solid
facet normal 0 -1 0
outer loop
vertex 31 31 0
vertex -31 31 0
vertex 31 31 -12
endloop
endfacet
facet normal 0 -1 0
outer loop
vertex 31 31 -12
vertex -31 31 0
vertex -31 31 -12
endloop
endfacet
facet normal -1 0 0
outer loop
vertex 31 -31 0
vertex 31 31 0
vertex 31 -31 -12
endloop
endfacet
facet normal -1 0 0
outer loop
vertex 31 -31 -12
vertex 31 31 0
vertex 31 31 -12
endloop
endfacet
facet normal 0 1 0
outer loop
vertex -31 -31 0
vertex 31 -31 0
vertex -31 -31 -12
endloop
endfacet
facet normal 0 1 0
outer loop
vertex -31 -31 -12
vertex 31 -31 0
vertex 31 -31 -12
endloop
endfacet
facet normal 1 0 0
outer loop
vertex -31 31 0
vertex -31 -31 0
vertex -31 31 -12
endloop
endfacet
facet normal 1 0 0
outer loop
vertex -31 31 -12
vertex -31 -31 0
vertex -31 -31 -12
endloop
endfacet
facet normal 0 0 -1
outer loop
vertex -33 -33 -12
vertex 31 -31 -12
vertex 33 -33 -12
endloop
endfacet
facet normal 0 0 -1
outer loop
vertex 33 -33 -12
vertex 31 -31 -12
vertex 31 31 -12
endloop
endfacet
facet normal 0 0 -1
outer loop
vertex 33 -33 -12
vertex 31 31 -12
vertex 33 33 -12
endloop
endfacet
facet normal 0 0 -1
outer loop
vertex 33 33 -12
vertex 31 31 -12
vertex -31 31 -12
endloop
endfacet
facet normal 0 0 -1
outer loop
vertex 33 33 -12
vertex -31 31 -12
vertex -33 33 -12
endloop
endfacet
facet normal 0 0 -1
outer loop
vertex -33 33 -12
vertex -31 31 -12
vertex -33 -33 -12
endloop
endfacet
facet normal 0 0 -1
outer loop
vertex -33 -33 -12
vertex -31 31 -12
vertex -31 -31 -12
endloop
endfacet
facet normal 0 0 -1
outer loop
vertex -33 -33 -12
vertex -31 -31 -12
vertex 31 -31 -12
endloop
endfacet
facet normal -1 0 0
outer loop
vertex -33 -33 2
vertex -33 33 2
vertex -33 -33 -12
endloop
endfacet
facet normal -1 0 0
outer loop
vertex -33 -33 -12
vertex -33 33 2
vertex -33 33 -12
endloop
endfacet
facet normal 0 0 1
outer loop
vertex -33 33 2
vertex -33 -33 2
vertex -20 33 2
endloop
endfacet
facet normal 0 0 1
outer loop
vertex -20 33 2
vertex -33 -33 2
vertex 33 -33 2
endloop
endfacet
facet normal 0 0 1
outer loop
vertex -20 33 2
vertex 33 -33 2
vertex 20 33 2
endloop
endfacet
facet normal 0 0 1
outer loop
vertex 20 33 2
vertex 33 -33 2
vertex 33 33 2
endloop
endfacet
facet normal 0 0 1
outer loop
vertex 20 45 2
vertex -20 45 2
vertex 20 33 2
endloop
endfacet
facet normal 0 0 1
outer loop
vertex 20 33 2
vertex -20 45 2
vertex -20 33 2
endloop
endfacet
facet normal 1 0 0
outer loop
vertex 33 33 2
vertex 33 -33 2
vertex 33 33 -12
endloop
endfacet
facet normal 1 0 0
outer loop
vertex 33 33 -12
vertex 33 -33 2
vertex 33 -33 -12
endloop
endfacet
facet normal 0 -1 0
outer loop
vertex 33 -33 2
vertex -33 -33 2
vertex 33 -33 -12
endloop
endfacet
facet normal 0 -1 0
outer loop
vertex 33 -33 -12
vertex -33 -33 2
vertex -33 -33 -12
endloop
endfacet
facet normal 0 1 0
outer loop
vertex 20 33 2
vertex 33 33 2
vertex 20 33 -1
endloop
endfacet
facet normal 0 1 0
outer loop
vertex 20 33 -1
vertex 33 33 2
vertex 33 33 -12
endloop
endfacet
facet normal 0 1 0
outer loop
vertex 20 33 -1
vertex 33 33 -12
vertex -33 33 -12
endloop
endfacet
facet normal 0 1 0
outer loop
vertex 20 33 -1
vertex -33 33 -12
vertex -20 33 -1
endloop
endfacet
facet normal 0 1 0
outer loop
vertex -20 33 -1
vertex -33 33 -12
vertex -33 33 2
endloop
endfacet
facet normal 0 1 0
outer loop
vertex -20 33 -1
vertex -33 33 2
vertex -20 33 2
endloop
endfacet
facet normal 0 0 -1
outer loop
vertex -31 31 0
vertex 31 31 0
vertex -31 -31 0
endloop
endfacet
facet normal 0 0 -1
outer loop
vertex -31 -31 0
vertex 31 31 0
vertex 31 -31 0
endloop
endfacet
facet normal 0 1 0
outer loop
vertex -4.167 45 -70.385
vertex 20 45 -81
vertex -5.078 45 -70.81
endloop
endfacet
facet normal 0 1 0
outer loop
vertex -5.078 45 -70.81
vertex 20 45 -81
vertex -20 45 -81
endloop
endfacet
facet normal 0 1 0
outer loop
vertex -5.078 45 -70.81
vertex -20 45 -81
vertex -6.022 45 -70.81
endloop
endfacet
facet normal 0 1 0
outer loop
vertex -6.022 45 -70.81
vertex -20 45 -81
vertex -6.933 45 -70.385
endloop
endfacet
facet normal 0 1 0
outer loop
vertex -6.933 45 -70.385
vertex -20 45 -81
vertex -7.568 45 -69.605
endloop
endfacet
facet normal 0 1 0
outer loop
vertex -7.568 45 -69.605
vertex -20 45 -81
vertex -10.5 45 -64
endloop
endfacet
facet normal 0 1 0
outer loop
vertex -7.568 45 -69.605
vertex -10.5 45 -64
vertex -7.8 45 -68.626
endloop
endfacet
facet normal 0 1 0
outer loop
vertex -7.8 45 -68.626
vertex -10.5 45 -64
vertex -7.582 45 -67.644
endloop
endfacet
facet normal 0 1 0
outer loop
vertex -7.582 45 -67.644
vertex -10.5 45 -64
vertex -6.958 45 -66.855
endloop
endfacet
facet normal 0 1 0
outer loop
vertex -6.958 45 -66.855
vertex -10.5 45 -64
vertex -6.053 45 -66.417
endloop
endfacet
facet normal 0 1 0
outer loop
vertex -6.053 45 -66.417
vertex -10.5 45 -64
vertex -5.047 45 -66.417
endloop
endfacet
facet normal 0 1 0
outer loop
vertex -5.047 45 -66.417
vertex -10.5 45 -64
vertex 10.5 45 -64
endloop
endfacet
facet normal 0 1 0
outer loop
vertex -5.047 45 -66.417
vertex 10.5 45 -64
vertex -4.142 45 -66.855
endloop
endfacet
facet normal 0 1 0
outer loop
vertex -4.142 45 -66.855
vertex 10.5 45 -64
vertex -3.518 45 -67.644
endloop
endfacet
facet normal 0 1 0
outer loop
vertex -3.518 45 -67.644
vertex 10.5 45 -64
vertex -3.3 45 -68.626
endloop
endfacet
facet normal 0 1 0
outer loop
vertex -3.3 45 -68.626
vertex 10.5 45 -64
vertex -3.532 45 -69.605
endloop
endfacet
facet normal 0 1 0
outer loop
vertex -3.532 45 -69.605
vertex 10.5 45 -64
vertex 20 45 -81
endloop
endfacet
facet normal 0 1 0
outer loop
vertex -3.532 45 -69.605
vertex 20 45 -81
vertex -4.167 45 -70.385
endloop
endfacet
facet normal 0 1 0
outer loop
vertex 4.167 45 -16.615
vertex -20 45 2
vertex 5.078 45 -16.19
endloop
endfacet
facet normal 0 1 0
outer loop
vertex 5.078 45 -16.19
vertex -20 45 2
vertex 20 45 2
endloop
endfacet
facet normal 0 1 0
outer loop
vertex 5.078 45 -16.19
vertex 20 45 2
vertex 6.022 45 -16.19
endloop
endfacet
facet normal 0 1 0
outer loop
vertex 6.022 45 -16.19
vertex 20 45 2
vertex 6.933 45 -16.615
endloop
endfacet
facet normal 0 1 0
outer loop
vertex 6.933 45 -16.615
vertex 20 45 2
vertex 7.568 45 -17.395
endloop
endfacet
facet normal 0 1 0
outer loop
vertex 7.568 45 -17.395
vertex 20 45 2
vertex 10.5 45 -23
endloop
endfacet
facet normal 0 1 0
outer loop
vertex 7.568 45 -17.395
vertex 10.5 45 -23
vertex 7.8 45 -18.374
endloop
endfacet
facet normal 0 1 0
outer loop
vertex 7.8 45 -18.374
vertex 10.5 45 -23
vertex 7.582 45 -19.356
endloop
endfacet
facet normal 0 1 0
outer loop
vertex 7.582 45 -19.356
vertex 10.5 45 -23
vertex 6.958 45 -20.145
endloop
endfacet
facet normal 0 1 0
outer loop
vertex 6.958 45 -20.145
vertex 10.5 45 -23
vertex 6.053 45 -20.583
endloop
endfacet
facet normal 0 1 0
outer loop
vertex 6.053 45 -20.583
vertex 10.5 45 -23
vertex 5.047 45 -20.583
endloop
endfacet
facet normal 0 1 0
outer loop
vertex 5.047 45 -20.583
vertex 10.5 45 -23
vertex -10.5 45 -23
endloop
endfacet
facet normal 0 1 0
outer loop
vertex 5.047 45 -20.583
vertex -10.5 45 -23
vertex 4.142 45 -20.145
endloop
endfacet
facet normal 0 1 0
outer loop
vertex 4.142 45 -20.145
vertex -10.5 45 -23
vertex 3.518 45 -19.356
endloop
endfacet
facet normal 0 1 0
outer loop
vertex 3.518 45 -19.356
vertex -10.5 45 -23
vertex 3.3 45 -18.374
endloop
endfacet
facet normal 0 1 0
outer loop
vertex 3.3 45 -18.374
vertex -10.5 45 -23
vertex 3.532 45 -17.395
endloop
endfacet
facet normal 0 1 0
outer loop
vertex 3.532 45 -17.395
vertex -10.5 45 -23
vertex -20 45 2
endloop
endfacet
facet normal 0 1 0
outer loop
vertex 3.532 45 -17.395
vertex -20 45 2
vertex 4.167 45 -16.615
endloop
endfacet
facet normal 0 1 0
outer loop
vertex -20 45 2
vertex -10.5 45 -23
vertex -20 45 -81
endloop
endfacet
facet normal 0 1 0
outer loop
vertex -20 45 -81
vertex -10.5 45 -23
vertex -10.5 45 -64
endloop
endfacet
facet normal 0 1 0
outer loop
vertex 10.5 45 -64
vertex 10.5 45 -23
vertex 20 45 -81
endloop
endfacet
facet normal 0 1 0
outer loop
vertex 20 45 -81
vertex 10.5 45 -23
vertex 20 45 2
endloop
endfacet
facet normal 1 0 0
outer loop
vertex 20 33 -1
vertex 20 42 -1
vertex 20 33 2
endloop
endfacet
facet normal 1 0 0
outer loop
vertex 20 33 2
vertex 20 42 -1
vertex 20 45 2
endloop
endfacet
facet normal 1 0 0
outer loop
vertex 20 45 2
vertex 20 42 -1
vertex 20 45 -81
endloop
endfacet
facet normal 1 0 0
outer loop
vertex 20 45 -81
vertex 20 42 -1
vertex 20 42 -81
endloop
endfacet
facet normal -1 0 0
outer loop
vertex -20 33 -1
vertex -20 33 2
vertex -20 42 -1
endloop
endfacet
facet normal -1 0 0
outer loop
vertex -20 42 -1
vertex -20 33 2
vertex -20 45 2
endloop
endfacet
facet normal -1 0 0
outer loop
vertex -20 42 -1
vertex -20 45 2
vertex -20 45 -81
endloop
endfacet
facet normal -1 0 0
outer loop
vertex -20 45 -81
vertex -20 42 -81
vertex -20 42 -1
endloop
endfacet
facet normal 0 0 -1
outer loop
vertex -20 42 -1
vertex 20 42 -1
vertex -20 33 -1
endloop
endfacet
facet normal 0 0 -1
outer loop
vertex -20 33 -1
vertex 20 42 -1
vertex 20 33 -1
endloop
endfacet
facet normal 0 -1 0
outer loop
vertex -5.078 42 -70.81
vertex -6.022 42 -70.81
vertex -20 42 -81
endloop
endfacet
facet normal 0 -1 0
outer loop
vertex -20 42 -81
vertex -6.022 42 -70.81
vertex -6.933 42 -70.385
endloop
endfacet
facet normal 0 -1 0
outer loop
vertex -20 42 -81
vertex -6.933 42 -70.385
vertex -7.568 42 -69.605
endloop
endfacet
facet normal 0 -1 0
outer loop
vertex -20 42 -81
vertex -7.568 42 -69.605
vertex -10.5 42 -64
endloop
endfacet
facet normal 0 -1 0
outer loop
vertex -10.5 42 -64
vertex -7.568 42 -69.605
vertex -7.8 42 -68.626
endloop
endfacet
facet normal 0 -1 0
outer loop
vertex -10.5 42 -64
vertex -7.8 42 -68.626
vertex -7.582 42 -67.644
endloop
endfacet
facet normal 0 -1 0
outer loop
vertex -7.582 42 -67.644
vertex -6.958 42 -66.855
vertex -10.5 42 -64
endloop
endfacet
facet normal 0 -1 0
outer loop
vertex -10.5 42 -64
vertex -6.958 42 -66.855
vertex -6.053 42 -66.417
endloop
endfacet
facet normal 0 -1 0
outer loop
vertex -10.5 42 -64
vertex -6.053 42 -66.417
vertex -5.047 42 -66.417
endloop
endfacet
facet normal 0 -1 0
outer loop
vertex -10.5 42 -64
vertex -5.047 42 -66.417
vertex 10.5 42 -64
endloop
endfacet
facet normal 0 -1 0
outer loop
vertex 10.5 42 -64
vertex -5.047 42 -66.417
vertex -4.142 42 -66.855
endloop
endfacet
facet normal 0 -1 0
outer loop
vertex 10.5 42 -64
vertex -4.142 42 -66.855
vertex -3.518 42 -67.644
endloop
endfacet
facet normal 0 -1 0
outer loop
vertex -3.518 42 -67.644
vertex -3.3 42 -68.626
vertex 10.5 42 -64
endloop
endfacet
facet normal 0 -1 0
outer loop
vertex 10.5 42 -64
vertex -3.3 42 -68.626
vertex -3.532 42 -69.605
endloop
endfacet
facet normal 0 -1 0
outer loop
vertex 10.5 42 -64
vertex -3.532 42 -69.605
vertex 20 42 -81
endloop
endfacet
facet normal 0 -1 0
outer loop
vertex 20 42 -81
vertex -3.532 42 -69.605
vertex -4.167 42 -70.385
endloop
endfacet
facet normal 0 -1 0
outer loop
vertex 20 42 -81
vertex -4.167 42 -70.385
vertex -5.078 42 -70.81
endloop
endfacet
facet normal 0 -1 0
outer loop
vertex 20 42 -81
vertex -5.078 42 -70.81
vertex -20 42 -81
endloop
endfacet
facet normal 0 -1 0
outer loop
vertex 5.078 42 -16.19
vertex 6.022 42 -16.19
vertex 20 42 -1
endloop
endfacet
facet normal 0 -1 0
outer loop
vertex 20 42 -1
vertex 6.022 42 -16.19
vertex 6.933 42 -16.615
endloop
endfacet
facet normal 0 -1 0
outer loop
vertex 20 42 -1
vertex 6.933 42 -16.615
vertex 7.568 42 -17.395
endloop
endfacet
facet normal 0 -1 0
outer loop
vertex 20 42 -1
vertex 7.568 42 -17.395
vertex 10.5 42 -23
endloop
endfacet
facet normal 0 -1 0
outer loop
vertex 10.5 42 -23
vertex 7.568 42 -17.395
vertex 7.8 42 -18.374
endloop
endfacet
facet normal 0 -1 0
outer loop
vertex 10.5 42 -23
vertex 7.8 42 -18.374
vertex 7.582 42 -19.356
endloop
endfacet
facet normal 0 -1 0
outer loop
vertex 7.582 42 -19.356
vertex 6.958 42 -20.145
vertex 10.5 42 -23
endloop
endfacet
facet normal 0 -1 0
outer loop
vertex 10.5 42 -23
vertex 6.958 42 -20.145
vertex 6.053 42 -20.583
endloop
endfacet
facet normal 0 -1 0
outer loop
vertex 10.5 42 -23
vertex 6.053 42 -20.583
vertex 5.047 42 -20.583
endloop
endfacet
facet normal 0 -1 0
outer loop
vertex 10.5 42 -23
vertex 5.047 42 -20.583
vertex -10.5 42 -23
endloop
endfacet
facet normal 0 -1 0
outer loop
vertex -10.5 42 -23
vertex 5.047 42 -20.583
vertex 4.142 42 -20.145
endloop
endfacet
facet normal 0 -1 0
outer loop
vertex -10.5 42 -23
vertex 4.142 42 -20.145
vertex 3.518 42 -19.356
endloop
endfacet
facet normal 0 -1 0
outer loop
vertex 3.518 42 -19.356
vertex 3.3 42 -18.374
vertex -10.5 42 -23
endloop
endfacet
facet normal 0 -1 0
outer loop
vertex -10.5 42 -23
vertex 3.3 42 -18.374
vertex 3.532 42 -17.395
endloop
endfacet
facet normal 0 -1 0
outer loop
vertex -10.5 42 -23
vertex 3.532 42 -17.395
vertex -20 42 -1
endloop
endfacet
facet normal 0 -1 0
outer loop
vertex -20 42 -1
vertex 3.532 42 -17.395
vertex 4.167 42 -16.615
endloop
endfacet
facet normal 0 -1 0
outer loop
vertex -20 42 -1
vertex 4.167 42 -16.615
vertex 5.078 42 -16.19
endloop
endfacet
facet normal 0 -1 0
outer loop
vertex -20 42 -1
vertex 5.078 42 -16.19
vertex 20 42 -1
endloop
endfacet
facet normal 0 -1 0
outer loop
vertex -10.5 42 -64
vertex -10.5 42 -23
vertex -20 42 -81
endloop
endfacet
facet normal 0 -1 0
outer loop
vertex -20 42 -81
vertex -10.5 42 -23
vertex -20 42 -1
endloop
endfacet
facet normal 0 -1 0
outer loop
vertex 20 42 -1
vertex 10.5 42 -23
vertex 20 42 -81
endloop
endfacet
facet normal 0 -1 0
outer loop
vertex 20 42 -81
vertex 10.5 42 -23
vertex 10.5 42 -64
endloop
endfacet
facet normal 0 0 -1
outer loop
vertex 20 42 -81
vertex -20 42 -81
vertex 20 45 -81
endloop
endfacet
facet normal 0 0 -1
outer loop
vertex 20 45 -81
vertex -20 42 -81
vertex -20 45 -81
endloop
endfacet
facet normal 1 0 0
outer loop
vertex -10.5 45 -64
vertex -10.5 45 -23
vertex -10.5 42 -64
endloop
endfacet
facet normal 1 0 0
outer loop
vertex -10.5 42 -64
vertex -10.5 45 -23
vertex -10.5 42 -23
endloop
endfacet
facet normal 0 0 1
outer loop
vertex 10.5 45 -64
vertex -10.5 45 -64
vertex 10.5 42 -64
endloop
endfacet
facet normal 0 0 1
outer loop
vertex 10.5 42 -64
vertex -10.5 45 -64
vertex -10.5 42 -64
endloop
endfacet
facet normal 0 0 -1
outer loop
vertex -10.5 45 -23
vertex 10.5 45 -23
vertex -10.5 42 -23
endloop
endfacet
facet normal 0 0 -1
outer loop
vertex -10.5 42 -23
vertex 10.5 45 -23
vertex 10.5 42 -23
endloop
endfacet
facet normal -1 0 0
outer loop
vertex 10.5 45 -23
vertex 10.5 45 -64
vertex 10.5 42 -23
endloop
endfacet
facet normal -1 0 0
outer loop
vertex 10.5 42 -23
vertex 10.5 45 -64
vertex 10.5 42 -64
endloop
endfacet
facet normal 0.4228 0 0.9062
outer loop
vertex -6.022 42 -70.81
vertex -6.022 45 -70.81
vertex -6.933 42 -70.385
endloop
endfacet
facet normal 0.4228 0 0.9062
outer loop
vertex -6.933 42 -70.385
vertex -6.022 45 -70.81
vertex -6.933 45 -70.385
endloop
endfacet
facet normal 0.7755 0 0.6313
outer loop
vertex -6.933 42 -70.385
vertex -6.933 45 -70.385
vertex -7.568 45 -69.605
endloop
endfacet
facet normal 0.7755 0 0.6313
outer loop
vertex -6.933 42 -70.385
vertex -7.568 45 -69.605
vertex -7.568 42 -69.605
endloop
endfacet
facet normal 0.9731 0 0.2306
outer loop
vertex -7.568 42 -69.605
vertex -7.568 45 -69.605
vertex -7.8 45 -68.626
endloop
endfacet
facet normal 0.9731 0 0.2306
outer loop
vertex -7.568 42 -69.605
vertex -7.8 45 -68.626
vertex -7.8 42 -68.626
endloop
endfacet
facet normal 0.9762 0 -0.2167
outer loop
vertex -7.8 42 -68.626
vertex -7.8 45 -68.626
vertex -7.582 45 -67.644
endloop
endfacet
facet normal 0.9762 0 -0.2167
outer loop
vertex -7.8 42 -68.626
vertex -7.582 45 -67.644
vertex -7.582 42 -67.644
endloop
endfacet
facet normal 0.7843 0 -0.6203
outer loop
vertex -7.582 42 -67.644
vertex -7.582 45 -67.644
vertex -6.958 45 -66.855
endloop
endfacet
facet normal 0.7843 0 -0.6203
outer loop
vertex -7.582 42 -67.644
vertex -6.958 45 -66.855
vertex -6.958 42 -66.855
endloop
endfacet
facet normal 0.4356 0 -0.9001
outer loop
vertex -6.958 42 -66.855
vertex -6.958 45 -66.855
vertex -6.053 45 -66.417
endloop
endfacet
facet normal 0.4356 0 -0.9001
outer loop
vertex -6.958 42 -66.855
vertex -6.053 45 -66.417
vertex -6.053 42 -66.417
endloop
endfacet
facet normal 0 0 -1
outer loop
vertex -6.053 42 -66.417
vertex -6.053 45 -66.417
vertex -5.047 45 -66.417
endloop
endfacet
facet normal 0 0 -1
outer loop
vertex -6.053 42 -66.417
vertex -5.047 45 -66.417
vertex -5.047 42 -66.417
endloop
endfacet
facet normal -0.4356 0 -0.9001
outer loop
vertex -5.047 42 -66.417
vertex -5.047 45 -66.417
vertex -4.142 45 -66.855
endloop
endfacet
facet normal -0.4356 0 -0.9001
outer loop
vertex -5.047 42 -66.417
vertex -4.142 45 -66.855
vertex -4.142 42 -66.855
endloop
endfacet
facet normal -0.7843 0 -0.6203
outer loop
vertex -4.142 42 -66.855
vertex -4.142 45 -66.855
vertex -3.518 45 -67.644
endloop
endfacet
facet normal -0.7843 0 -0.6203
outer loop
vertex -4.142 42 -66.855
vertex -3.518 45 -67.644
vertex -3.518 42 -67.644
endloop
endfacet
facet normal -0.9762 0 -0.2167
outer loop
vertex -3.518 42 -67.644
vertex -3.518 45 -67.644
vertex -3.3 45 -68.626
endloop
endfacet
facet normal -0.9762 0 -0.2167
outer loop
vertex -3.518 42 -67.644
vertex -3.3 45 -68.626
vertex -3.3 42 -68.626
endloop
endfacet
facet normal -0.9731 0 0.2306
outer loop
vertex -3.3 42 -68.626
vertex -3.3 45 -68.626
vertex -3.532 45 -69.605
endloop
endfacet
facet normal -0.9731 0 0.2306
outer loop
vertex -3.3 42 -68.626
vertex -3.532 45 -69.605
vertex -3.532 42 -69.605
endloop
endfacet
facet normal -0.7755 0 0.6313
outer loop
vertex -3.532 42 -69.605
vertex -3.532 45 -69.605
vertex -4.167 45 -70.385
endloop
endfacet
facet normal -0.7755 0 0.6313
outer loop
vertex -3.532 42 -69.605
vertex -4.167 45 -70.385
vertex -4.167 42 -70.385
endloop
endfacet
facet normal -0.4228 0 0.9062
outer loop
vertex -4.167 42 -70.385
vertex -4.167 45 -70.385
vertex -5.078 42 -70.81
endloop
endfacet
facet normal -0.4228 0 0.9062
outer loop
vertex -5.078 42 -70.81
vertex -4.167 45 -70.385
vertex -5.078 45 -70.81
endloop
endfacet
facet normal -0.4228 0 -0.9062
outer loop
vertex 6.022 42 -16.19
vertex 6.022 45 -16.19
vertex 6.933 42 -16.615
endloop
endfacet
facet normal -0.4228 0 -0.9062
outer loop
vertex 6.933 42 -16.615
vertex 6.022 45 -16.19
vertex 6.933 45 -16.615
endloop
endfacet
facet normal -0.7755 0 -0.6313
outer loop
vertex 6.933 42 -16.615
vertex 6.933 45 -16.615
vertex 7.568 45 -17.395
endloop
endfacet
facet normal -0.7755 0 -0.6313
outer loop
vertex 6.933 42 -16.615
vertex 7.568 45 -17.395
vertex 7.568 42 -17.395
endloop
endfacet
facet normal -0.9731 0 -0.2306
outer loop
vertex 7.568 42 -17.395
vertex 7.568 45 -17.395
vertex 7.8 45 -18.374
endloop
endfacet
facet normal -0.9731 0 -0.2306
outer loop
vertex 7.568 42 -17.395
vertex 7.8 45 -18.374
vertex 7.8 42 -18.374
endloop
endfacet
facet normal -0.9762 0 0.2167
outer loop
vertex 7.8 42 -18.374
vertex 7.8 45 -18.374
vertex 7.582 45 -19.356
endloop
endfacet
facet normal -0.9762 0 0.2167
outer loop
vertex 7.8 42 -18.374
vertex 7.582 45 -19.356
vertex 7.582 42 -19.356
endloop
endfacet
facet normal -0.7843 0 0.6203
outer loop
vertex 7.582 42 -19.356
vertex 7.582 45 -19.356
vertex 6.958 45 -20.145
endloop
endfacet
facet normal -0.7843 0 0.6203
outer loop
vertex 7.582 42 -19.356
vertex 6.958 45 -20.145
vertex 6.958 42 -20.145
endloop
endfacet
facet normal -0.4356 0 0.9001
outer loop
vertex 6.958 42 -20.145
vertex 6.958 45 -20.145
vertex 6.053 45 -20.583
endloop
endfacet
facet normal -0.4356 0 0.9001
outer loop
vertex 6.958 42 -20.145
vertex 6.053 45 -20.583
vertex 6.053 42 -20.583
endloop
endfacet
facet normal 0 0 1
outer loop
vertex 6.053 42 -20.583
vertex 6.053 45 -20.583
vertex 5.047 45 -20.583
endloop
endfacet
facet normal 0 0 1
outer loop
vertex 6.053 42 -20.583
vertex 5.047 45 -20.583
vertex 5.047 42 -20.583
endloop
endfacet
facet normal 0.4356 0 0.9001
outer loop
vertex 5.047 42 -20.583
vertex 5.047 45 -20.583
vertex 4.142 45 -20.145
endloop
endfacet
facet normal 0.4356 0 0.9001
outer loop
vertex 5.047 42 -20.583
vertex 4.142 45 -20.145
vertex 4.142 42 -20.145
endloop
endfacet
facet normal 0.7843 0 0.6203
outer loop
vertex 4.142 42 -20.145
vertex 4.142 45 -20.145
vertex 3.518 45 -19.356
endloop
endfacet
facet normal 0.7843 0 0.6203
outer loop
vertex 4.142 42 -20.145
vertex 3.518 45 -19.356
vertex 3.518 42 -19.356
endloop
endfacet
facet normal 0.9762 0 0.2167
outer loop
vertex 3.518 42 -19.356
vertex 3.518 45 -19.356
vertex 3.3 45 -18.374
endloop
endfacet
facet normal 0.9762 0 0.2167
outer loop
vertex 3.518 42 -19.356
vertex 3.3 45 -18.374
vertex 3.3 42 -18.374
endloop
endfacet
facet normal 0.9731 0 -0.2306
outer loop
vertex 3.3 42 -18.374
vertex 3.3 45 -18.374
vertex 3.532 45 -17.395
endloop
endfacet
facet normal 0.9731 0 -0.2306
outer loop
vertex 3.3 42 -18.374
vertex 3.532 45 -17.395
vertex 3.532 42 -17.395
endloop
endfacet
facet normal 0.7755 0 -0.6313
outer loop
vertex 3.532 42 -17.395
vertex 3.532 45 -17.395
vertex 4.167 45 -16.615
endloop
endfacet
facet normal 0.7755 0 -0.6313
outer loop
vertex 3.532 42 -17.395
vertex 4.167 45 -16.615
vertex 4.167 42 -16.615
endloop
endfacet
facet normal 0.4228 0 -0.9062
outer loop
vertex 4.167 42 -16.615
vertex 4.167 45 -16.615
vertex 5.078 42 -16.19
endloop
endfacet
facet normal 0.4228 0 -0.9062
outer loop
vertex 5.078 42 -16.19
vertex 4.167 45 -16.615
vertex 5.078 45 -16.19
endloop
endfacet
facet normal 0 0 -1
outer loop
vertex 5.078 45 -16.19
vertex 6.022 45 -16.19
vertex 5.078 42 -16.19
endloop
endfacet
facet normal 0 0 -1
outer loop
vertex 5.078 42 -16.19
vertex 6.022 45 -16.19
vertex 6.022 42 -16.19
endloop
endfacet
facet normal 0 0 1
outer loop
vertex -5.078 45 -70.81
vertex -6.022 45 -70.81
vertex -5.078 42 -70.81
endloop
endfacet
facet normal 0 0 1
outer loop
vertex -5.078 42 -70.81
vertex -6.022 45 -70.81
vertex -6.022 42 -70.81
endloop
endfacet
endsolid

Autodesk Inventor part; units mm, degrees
ref_plane "YZ Plane" through (0, 0, 0) normal (1, 0, 0) x (0, 1, 0)
ref_plane "XZ Plane" through (0, 0, 0) normal (0, 1, 0) x (-1, 0, 0)
ref_plane "XY Plane" through (0, 0, 0) normal (0, 0, 1) x (1, 0, 0)
sketch "Sketch1" plane through (0, 0, 0) normal (0, 0, 1) x (1, 0, 0)
  line L0 (-31, -31) -> (31, -31)
  line L1 (31, -31) -> (31, 31)
  line L2 (31, 31) -> (-31, 31)
  line L3 (-31, 31) -> (-31, -31)
  line L4 (-31, -31) -> (31, 31) construction
  line L5 (31, -31) -> (-31, 31) construction
  line L6 (-33, 33) -> (33, 33)
  line L7 (33, 33) -> (33, -33)
  line L8 (33, -33) -> (-33, -33)
  line L9 (-33, -33) -> (-33, 33)
  point P0 (0, 0)
  dimension "d0" = 62
  dimension "d1" = 62
  dimension "d2" = 2
extrude "Extrusion1" add sketch "Sketch1" along normal blind 2 contours L3 L2 L1 L0 | L6 L7 L8 L9
extrude "Extrusion2" add sketch "Sketch1" against normal blind 12
sketch "Sketch2" plane through (-33, 33, 2) normal (0, 1, 0) x (1, 0, 0)
  line L0 (13, 3) -> (53, 3)
  line L1 (53, 3) -> (53, 0)
  line L2 (53, 0) -> (13, 0)
  line L3 (13, 0) -> (13, 3)
  line L4 (0, 14) -> (0, 0) projected
  line L5 (0, 14) -> (66, 14) projected
  point P0 (33, 2)
  dimension "d7" = 40
  dimension "d8" = 3
  dimension "d9" = 13
  dimension "d10" = 11
extrude "Extrusion3" add sketch "Sketch2" along normal blind 12
sketch "Sketch3" plane through (20, 33, -1) normal (0, 0, -1) x (-1, 0, 0)
  line L0 (40, 12) -> (0, 12) projected
  line L1 (40, 0) -> (40, 12) projected
  line L2 (0, 12) -> (40, 12)
  line L3 (40, 12) -> (40, 9)
  line L4 (40, 9) -> (0, 9)
  line L5 (0, 9) -> (0, 12)
  point P0 (20, -33)
  dimension "d13" = 3
extrude "Extrusion4" add sketch "Sketch3" along normal blind 80
sketch "Sketch4" plane through (-20, 42, -1) normal (0, -1, 0) x (1, 0, 0)
  line L0 (30.5, -63) -> (9.5, -63)
  line L1 (9.5, -63) -> (9.5, -22)
  line L2 (9.5, -22) -> (30.5, -22)
  line L3 (30.5, -22) -> (30.5, -63)
  line L4 (40, 3) -> (40, -80) projected
  line L5 (0, 3) -> (40, 3) projected
  point P0 (20, 1)
  dimension "d16" = 21
  dimension "d17" = 41
  dimension "d18" = 9.5
  dimension "d19" = 25
extrude "Extrusion5" cut sketch "Sketch4" against normal blind 80
sketch "Sketch5" plane through (-20, 42, -1) normal (0, -1, 0) x (1, 0, 0)
  line L0 (30.5, -63) -> (9.5, -63) projected
  line L1 (30.5, -63) -> (9.5, -63)
  line L2 (9.5, -63) -> (9.5, -69.81)
  line L3 (9.5, -69.81) -> (30.5, -69.81)
  line L4 (30.5, -69.81) -> (30.5, -63)
  circle A0 centre (14.45, -67.61) radius 2.25
  line L5 (30.5, -22) -> (30.5, -63) projected
  line L6 (30.5, -22) -> (9.5, -22)
  line L7 (9.5, -22) -> (9.5, -15.19)
  line L8 (9.5, -15.19) -> (30.5, -15.19)
  line L9 (30.5, -15.19) -> (30.5, -22)
  circle A1 centre (25.55, -17.39) radius 2.25
  point P0 (20, 1)
  point P1 (14.9217, -69.81)
  point P2 (13.9783, -69.81)
  point P3 (25.0783, -15.19)
  point P4 (26.0217, -15.19)
  dimension "d22" = 6.81
  dimension "d23" = 4.5
  dimension "d24" = 4.61
  dimension "d25" = 4.95
  dimension "d26" = 6.81
  dimension "d27" = 4.5
  dimension "d28" = 4.95
  dimension "d29" = 4.61
extrude "Extrusion6" cut sketch "Sketch5" against normal blind 80 contours L3 A0 | A1 L8 picked at (13.7855, -67.0048) picked at (26.1347, -16.9649)
properties part number "pan_base_holder"
